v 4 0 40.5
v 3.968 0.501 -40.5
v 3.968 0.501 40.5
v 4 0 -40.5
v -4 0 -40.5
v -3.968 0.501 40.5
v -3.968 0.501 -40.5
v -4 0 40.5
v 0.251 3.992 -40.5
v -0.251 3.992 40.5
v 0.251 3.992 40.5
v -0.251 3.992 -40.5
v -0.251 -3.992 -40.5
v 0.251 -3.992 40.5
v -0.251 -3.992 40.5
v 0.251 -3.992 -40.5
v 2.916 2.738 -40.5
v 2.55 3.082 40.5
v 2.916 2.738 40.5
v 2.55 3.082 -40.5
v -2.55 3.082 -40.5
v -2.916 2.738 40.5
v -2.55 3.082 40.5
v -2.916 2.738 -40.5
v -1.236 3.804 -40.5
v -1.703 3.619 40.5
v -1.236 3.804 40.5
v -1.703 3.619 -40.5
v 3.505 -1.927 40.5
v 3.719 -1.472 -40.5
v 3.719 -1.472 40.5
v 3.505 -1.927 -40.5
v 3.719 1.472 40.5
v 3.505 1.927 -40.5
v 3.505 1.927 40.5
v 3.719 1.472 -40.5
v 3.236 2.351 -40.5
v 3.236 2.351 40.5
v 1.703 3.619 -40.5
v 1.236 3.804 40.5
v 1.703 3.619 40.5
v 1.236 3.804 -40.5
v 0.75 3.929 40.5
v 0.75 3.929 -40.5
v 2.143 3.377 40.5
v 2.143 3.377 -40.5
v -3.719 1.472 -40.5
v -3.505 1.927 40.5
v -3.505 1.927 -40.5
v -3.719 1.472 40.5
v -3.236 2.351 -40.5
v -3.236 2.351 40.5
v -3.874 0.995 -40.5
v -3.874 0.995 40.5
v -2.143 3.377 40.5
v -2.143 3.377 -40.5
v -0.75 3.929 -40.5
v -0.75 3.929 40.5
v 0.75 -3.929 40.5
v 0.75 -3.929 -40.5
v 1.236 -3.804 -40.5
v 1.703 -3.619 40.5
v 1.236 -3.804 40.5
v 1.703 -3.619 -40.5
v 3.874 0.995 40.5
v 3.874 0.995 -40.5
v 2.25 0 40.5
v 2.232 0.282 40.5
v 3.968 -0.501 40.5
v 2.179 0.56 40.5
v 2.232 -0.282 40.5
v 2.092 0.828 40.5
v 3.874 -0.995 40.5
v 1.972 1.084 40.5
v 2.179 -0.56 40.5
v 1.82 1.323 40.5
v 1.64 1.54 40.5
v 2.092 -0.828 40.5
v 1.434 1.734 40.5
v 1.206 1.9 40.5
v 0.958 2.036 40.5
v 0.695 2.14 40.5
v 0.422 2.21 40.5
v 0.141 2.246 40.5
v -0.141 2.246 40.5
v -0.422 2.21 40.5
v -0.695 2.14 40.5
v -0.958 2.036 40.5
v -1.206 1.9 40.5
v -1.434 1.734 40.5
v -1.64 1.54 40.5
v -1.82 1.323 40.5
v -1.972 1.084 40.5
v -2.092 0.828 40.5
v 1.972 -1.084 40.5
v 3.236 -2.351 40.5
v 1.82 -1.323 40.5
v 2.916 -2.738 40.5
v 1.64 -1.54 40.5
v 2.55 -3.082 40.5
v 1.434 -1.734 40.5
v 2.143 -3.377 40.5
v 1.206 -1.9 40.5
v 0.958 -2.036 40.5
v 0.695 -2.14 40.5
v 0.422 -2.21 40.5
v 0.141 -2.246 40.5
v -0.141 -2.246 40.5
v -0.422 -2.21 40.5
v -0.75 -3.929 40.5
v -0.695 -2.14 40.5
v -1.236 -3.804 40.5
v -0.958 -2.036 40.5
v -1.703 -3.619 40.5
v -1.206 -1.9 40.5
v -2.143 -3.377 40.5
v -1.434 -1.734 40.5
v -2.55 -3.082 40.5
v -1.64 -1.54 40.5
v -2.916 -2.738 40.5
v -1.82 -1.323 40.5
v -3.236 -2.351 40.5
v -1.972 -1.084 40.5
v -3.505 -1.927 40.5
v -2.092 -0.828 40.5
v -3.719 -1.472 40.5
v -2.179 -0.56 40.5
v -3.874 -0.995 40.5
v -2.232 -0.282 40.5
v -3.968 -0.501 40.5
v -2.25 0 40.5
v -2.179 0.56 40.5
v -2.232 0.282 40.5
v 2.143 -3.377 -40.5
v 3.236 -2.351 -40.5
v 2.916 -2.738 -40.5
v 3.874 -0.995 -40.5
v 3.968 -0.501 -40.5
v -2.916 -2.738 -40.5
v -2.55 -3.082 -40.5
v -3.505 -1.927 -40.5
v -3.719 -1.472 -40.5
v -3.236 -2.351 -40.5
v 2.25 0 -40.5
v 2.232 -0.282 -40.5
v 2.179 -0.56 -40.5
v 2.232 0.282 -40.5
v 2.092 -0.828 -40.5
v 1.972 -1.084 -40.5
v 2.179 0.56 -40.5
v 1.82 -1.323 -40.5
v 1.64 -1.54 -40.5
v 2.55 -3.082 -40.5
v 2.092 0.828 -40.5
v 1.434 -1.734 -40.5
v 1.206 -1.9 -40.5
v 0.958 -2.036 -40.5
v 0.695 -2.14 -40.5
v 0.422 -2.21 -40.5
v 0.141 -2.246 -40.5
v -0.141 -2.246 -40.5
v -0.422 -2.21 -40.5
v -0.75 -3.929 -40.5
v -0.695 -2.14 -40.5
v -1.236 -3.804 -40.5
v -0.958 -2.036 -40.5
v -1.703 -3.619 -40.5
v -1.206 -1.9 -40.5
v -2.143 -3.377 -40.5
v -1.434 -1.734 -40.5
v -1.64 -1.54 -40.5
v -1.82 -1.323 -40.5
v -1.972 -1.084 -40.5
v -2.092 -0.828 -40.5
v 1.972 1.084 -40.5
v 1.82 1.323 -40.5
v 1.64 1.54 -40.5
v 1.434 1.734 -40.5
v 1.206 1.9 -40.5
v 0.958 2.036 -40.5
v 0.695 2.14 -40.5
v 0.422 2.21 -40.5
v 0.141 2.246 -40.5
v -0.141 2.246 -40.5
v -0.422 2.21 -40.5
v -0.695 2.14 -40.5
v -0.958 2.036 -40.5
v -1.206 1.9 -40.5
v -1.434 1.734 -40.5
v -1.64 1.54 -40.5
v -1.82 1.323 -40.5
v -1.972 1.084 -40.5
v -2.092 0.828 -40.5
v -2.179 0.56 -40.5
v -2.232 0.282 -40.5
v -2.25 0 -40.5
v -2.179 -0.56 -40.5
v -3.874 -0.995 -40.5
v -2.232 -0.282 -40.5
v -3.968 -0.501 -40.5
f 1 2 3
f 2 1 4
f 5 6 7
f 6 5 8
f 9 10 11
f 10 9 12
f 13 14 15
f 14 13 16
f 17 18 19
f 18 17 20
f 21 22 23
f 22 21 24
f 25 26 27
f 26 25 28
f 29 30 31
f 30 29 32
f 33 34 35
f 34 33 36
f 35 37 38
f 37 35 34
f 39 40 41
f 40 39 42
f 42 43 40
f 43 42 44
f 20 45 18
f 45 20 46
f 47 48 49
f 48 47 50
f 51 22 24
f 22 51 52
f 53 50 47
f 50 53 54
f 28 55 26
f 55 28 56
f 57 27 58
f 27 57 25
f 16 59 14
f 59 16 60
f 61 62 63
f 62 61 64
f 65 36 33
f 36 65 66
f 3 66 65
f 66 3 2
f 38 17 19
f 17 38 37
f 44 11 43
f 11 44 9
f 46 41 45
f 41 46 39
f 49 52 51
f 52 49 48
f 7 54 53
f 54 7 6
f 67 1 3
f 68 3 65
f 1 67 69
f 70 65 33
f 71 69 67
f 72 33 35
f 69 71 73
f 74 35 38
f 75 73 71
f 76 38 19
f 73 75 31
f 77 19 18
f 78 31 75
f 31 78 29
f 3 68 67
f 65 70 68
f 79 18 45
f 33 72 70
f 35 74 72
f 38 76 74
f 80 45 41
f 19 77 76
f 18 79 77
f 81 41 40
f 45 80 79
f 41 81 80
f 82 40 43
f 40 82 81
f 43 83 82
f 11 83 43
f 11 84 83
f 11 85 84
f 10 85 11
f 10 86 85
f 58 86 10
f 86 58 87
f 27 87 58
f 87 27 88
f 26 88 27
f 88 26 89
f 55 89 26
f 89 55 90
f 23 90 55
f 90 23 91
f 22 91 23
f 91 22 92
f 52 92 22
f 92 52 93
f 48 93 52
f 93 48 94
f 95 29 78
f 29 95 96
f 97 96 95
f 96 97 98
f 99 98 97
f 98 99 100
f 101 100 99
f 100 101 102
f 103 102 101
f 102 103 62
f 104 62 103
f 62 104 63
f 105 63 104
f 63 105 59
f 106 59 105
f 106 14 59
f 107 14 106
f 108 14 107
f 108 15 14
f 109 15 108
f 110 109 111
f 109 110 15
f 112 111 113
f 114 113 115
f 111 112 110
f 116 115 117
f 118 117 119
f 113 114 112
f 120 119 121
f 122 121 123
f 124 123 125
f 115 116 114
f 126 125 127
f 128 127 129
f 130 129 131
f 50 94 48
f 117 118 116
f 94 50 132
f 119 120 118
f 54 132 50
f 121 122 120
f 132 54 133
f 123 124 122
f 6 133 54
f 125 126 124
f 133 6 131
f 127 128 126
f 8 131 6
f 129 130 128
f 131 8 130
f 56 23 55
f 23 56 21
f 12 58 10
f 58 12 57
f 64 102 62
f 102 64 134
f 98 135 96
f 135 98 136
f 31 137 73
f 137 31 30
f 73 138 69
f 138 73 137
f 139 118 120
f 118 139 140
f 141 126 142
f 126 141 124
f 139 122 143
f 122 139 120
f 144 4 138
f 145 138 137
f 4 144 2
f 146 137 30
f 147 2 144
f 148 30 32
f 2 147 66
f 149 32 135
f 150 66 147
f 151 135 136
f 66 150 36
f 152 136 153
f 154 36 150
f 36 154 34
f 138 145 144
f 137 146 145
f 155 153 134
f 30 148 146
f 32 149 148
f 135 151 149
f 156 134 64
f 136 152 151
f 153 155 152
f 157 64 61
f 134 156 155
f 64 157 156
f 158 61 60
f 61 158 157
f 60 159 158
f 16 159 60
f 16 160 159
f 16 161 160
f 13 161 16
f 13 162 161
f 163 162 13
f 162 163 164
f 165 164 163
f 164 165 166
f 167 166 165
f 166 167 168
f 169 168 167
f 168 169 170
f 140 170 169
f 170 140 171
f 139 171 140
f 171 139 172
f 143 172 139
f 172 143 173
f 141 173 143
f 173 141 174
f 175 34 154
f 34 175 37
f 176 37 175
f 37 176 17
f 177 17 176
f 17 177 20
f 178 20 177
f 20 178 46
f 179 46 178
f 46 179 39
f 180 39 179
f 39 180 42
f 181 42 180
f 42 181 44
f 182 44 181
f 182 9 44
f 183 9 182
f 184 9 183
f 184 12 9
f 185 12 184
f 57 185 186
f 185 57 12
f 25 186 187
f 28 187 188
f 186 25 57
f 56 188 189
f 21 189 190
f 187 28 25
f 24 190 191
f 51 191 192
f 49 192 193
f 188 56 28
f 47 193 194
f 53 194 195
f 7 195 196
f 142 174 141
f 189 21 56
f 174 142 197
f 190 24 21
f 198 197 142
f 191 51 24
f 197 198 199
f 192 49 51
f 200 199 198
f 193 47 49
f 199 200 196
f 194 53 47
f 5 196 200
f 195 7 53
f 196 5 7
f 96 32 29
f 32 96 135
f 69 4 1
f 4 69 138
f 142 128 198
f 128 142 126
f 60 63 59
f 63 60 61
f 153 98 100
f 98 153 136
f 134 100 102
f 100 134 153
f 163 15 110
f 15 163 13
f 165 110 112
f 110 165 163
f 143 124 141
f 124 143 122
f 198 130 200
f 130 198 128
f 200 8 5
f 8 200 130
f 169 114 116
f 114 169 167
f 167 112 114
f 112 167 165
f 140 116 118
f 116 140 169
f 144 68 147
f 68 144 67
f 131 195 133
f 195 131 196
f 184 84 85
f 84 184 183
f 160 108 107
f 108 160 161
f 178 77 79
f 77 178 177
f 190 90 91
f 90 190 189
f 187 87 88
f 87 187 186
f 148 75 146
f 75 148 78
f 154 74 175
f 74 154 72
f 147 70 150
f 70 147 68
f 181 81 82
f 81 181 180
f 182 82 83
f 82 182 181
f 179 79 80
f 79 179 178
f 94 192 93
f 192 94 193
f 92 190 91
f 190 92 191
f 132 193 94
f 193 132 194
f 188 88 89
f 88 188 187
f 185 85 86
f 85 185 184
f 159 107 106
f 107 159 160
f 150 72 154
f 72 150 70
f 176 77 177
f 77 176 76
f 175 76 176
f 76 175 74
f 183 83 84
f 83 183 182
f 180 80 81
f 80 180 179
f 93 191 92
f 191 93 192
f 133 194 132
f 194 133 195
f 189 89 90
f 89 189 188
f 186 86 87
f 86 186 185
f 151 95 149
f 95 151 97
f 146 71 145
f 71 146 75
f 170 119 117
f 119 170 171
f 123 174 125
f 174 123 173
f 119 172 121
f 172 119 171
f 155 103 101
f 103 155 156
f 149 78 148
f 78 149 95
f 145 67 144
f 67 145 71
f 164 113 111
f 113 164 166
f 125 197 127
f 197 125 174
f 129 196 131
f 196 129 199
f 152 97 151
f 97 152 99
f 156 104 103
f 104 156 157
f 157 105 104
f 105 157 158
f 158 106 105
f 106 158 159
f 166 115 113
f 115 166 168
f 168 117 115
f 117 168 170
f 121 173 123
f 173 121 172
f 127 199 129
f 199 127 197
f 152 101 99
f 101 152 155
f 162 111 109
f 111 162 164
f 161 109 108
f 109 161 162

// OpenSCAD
$fn = 50;


difference() {
	union() {
		translate(v = [0, 0, -40.5000000000]) {
			cylinder(h = 81, r = 4.0000000000);
		}
	}
	union() {
		translate(v = [0, 0, -100.0000000000]) {
			cylinder(h = 200, r = 2.2500000000);
		}
	}
}
